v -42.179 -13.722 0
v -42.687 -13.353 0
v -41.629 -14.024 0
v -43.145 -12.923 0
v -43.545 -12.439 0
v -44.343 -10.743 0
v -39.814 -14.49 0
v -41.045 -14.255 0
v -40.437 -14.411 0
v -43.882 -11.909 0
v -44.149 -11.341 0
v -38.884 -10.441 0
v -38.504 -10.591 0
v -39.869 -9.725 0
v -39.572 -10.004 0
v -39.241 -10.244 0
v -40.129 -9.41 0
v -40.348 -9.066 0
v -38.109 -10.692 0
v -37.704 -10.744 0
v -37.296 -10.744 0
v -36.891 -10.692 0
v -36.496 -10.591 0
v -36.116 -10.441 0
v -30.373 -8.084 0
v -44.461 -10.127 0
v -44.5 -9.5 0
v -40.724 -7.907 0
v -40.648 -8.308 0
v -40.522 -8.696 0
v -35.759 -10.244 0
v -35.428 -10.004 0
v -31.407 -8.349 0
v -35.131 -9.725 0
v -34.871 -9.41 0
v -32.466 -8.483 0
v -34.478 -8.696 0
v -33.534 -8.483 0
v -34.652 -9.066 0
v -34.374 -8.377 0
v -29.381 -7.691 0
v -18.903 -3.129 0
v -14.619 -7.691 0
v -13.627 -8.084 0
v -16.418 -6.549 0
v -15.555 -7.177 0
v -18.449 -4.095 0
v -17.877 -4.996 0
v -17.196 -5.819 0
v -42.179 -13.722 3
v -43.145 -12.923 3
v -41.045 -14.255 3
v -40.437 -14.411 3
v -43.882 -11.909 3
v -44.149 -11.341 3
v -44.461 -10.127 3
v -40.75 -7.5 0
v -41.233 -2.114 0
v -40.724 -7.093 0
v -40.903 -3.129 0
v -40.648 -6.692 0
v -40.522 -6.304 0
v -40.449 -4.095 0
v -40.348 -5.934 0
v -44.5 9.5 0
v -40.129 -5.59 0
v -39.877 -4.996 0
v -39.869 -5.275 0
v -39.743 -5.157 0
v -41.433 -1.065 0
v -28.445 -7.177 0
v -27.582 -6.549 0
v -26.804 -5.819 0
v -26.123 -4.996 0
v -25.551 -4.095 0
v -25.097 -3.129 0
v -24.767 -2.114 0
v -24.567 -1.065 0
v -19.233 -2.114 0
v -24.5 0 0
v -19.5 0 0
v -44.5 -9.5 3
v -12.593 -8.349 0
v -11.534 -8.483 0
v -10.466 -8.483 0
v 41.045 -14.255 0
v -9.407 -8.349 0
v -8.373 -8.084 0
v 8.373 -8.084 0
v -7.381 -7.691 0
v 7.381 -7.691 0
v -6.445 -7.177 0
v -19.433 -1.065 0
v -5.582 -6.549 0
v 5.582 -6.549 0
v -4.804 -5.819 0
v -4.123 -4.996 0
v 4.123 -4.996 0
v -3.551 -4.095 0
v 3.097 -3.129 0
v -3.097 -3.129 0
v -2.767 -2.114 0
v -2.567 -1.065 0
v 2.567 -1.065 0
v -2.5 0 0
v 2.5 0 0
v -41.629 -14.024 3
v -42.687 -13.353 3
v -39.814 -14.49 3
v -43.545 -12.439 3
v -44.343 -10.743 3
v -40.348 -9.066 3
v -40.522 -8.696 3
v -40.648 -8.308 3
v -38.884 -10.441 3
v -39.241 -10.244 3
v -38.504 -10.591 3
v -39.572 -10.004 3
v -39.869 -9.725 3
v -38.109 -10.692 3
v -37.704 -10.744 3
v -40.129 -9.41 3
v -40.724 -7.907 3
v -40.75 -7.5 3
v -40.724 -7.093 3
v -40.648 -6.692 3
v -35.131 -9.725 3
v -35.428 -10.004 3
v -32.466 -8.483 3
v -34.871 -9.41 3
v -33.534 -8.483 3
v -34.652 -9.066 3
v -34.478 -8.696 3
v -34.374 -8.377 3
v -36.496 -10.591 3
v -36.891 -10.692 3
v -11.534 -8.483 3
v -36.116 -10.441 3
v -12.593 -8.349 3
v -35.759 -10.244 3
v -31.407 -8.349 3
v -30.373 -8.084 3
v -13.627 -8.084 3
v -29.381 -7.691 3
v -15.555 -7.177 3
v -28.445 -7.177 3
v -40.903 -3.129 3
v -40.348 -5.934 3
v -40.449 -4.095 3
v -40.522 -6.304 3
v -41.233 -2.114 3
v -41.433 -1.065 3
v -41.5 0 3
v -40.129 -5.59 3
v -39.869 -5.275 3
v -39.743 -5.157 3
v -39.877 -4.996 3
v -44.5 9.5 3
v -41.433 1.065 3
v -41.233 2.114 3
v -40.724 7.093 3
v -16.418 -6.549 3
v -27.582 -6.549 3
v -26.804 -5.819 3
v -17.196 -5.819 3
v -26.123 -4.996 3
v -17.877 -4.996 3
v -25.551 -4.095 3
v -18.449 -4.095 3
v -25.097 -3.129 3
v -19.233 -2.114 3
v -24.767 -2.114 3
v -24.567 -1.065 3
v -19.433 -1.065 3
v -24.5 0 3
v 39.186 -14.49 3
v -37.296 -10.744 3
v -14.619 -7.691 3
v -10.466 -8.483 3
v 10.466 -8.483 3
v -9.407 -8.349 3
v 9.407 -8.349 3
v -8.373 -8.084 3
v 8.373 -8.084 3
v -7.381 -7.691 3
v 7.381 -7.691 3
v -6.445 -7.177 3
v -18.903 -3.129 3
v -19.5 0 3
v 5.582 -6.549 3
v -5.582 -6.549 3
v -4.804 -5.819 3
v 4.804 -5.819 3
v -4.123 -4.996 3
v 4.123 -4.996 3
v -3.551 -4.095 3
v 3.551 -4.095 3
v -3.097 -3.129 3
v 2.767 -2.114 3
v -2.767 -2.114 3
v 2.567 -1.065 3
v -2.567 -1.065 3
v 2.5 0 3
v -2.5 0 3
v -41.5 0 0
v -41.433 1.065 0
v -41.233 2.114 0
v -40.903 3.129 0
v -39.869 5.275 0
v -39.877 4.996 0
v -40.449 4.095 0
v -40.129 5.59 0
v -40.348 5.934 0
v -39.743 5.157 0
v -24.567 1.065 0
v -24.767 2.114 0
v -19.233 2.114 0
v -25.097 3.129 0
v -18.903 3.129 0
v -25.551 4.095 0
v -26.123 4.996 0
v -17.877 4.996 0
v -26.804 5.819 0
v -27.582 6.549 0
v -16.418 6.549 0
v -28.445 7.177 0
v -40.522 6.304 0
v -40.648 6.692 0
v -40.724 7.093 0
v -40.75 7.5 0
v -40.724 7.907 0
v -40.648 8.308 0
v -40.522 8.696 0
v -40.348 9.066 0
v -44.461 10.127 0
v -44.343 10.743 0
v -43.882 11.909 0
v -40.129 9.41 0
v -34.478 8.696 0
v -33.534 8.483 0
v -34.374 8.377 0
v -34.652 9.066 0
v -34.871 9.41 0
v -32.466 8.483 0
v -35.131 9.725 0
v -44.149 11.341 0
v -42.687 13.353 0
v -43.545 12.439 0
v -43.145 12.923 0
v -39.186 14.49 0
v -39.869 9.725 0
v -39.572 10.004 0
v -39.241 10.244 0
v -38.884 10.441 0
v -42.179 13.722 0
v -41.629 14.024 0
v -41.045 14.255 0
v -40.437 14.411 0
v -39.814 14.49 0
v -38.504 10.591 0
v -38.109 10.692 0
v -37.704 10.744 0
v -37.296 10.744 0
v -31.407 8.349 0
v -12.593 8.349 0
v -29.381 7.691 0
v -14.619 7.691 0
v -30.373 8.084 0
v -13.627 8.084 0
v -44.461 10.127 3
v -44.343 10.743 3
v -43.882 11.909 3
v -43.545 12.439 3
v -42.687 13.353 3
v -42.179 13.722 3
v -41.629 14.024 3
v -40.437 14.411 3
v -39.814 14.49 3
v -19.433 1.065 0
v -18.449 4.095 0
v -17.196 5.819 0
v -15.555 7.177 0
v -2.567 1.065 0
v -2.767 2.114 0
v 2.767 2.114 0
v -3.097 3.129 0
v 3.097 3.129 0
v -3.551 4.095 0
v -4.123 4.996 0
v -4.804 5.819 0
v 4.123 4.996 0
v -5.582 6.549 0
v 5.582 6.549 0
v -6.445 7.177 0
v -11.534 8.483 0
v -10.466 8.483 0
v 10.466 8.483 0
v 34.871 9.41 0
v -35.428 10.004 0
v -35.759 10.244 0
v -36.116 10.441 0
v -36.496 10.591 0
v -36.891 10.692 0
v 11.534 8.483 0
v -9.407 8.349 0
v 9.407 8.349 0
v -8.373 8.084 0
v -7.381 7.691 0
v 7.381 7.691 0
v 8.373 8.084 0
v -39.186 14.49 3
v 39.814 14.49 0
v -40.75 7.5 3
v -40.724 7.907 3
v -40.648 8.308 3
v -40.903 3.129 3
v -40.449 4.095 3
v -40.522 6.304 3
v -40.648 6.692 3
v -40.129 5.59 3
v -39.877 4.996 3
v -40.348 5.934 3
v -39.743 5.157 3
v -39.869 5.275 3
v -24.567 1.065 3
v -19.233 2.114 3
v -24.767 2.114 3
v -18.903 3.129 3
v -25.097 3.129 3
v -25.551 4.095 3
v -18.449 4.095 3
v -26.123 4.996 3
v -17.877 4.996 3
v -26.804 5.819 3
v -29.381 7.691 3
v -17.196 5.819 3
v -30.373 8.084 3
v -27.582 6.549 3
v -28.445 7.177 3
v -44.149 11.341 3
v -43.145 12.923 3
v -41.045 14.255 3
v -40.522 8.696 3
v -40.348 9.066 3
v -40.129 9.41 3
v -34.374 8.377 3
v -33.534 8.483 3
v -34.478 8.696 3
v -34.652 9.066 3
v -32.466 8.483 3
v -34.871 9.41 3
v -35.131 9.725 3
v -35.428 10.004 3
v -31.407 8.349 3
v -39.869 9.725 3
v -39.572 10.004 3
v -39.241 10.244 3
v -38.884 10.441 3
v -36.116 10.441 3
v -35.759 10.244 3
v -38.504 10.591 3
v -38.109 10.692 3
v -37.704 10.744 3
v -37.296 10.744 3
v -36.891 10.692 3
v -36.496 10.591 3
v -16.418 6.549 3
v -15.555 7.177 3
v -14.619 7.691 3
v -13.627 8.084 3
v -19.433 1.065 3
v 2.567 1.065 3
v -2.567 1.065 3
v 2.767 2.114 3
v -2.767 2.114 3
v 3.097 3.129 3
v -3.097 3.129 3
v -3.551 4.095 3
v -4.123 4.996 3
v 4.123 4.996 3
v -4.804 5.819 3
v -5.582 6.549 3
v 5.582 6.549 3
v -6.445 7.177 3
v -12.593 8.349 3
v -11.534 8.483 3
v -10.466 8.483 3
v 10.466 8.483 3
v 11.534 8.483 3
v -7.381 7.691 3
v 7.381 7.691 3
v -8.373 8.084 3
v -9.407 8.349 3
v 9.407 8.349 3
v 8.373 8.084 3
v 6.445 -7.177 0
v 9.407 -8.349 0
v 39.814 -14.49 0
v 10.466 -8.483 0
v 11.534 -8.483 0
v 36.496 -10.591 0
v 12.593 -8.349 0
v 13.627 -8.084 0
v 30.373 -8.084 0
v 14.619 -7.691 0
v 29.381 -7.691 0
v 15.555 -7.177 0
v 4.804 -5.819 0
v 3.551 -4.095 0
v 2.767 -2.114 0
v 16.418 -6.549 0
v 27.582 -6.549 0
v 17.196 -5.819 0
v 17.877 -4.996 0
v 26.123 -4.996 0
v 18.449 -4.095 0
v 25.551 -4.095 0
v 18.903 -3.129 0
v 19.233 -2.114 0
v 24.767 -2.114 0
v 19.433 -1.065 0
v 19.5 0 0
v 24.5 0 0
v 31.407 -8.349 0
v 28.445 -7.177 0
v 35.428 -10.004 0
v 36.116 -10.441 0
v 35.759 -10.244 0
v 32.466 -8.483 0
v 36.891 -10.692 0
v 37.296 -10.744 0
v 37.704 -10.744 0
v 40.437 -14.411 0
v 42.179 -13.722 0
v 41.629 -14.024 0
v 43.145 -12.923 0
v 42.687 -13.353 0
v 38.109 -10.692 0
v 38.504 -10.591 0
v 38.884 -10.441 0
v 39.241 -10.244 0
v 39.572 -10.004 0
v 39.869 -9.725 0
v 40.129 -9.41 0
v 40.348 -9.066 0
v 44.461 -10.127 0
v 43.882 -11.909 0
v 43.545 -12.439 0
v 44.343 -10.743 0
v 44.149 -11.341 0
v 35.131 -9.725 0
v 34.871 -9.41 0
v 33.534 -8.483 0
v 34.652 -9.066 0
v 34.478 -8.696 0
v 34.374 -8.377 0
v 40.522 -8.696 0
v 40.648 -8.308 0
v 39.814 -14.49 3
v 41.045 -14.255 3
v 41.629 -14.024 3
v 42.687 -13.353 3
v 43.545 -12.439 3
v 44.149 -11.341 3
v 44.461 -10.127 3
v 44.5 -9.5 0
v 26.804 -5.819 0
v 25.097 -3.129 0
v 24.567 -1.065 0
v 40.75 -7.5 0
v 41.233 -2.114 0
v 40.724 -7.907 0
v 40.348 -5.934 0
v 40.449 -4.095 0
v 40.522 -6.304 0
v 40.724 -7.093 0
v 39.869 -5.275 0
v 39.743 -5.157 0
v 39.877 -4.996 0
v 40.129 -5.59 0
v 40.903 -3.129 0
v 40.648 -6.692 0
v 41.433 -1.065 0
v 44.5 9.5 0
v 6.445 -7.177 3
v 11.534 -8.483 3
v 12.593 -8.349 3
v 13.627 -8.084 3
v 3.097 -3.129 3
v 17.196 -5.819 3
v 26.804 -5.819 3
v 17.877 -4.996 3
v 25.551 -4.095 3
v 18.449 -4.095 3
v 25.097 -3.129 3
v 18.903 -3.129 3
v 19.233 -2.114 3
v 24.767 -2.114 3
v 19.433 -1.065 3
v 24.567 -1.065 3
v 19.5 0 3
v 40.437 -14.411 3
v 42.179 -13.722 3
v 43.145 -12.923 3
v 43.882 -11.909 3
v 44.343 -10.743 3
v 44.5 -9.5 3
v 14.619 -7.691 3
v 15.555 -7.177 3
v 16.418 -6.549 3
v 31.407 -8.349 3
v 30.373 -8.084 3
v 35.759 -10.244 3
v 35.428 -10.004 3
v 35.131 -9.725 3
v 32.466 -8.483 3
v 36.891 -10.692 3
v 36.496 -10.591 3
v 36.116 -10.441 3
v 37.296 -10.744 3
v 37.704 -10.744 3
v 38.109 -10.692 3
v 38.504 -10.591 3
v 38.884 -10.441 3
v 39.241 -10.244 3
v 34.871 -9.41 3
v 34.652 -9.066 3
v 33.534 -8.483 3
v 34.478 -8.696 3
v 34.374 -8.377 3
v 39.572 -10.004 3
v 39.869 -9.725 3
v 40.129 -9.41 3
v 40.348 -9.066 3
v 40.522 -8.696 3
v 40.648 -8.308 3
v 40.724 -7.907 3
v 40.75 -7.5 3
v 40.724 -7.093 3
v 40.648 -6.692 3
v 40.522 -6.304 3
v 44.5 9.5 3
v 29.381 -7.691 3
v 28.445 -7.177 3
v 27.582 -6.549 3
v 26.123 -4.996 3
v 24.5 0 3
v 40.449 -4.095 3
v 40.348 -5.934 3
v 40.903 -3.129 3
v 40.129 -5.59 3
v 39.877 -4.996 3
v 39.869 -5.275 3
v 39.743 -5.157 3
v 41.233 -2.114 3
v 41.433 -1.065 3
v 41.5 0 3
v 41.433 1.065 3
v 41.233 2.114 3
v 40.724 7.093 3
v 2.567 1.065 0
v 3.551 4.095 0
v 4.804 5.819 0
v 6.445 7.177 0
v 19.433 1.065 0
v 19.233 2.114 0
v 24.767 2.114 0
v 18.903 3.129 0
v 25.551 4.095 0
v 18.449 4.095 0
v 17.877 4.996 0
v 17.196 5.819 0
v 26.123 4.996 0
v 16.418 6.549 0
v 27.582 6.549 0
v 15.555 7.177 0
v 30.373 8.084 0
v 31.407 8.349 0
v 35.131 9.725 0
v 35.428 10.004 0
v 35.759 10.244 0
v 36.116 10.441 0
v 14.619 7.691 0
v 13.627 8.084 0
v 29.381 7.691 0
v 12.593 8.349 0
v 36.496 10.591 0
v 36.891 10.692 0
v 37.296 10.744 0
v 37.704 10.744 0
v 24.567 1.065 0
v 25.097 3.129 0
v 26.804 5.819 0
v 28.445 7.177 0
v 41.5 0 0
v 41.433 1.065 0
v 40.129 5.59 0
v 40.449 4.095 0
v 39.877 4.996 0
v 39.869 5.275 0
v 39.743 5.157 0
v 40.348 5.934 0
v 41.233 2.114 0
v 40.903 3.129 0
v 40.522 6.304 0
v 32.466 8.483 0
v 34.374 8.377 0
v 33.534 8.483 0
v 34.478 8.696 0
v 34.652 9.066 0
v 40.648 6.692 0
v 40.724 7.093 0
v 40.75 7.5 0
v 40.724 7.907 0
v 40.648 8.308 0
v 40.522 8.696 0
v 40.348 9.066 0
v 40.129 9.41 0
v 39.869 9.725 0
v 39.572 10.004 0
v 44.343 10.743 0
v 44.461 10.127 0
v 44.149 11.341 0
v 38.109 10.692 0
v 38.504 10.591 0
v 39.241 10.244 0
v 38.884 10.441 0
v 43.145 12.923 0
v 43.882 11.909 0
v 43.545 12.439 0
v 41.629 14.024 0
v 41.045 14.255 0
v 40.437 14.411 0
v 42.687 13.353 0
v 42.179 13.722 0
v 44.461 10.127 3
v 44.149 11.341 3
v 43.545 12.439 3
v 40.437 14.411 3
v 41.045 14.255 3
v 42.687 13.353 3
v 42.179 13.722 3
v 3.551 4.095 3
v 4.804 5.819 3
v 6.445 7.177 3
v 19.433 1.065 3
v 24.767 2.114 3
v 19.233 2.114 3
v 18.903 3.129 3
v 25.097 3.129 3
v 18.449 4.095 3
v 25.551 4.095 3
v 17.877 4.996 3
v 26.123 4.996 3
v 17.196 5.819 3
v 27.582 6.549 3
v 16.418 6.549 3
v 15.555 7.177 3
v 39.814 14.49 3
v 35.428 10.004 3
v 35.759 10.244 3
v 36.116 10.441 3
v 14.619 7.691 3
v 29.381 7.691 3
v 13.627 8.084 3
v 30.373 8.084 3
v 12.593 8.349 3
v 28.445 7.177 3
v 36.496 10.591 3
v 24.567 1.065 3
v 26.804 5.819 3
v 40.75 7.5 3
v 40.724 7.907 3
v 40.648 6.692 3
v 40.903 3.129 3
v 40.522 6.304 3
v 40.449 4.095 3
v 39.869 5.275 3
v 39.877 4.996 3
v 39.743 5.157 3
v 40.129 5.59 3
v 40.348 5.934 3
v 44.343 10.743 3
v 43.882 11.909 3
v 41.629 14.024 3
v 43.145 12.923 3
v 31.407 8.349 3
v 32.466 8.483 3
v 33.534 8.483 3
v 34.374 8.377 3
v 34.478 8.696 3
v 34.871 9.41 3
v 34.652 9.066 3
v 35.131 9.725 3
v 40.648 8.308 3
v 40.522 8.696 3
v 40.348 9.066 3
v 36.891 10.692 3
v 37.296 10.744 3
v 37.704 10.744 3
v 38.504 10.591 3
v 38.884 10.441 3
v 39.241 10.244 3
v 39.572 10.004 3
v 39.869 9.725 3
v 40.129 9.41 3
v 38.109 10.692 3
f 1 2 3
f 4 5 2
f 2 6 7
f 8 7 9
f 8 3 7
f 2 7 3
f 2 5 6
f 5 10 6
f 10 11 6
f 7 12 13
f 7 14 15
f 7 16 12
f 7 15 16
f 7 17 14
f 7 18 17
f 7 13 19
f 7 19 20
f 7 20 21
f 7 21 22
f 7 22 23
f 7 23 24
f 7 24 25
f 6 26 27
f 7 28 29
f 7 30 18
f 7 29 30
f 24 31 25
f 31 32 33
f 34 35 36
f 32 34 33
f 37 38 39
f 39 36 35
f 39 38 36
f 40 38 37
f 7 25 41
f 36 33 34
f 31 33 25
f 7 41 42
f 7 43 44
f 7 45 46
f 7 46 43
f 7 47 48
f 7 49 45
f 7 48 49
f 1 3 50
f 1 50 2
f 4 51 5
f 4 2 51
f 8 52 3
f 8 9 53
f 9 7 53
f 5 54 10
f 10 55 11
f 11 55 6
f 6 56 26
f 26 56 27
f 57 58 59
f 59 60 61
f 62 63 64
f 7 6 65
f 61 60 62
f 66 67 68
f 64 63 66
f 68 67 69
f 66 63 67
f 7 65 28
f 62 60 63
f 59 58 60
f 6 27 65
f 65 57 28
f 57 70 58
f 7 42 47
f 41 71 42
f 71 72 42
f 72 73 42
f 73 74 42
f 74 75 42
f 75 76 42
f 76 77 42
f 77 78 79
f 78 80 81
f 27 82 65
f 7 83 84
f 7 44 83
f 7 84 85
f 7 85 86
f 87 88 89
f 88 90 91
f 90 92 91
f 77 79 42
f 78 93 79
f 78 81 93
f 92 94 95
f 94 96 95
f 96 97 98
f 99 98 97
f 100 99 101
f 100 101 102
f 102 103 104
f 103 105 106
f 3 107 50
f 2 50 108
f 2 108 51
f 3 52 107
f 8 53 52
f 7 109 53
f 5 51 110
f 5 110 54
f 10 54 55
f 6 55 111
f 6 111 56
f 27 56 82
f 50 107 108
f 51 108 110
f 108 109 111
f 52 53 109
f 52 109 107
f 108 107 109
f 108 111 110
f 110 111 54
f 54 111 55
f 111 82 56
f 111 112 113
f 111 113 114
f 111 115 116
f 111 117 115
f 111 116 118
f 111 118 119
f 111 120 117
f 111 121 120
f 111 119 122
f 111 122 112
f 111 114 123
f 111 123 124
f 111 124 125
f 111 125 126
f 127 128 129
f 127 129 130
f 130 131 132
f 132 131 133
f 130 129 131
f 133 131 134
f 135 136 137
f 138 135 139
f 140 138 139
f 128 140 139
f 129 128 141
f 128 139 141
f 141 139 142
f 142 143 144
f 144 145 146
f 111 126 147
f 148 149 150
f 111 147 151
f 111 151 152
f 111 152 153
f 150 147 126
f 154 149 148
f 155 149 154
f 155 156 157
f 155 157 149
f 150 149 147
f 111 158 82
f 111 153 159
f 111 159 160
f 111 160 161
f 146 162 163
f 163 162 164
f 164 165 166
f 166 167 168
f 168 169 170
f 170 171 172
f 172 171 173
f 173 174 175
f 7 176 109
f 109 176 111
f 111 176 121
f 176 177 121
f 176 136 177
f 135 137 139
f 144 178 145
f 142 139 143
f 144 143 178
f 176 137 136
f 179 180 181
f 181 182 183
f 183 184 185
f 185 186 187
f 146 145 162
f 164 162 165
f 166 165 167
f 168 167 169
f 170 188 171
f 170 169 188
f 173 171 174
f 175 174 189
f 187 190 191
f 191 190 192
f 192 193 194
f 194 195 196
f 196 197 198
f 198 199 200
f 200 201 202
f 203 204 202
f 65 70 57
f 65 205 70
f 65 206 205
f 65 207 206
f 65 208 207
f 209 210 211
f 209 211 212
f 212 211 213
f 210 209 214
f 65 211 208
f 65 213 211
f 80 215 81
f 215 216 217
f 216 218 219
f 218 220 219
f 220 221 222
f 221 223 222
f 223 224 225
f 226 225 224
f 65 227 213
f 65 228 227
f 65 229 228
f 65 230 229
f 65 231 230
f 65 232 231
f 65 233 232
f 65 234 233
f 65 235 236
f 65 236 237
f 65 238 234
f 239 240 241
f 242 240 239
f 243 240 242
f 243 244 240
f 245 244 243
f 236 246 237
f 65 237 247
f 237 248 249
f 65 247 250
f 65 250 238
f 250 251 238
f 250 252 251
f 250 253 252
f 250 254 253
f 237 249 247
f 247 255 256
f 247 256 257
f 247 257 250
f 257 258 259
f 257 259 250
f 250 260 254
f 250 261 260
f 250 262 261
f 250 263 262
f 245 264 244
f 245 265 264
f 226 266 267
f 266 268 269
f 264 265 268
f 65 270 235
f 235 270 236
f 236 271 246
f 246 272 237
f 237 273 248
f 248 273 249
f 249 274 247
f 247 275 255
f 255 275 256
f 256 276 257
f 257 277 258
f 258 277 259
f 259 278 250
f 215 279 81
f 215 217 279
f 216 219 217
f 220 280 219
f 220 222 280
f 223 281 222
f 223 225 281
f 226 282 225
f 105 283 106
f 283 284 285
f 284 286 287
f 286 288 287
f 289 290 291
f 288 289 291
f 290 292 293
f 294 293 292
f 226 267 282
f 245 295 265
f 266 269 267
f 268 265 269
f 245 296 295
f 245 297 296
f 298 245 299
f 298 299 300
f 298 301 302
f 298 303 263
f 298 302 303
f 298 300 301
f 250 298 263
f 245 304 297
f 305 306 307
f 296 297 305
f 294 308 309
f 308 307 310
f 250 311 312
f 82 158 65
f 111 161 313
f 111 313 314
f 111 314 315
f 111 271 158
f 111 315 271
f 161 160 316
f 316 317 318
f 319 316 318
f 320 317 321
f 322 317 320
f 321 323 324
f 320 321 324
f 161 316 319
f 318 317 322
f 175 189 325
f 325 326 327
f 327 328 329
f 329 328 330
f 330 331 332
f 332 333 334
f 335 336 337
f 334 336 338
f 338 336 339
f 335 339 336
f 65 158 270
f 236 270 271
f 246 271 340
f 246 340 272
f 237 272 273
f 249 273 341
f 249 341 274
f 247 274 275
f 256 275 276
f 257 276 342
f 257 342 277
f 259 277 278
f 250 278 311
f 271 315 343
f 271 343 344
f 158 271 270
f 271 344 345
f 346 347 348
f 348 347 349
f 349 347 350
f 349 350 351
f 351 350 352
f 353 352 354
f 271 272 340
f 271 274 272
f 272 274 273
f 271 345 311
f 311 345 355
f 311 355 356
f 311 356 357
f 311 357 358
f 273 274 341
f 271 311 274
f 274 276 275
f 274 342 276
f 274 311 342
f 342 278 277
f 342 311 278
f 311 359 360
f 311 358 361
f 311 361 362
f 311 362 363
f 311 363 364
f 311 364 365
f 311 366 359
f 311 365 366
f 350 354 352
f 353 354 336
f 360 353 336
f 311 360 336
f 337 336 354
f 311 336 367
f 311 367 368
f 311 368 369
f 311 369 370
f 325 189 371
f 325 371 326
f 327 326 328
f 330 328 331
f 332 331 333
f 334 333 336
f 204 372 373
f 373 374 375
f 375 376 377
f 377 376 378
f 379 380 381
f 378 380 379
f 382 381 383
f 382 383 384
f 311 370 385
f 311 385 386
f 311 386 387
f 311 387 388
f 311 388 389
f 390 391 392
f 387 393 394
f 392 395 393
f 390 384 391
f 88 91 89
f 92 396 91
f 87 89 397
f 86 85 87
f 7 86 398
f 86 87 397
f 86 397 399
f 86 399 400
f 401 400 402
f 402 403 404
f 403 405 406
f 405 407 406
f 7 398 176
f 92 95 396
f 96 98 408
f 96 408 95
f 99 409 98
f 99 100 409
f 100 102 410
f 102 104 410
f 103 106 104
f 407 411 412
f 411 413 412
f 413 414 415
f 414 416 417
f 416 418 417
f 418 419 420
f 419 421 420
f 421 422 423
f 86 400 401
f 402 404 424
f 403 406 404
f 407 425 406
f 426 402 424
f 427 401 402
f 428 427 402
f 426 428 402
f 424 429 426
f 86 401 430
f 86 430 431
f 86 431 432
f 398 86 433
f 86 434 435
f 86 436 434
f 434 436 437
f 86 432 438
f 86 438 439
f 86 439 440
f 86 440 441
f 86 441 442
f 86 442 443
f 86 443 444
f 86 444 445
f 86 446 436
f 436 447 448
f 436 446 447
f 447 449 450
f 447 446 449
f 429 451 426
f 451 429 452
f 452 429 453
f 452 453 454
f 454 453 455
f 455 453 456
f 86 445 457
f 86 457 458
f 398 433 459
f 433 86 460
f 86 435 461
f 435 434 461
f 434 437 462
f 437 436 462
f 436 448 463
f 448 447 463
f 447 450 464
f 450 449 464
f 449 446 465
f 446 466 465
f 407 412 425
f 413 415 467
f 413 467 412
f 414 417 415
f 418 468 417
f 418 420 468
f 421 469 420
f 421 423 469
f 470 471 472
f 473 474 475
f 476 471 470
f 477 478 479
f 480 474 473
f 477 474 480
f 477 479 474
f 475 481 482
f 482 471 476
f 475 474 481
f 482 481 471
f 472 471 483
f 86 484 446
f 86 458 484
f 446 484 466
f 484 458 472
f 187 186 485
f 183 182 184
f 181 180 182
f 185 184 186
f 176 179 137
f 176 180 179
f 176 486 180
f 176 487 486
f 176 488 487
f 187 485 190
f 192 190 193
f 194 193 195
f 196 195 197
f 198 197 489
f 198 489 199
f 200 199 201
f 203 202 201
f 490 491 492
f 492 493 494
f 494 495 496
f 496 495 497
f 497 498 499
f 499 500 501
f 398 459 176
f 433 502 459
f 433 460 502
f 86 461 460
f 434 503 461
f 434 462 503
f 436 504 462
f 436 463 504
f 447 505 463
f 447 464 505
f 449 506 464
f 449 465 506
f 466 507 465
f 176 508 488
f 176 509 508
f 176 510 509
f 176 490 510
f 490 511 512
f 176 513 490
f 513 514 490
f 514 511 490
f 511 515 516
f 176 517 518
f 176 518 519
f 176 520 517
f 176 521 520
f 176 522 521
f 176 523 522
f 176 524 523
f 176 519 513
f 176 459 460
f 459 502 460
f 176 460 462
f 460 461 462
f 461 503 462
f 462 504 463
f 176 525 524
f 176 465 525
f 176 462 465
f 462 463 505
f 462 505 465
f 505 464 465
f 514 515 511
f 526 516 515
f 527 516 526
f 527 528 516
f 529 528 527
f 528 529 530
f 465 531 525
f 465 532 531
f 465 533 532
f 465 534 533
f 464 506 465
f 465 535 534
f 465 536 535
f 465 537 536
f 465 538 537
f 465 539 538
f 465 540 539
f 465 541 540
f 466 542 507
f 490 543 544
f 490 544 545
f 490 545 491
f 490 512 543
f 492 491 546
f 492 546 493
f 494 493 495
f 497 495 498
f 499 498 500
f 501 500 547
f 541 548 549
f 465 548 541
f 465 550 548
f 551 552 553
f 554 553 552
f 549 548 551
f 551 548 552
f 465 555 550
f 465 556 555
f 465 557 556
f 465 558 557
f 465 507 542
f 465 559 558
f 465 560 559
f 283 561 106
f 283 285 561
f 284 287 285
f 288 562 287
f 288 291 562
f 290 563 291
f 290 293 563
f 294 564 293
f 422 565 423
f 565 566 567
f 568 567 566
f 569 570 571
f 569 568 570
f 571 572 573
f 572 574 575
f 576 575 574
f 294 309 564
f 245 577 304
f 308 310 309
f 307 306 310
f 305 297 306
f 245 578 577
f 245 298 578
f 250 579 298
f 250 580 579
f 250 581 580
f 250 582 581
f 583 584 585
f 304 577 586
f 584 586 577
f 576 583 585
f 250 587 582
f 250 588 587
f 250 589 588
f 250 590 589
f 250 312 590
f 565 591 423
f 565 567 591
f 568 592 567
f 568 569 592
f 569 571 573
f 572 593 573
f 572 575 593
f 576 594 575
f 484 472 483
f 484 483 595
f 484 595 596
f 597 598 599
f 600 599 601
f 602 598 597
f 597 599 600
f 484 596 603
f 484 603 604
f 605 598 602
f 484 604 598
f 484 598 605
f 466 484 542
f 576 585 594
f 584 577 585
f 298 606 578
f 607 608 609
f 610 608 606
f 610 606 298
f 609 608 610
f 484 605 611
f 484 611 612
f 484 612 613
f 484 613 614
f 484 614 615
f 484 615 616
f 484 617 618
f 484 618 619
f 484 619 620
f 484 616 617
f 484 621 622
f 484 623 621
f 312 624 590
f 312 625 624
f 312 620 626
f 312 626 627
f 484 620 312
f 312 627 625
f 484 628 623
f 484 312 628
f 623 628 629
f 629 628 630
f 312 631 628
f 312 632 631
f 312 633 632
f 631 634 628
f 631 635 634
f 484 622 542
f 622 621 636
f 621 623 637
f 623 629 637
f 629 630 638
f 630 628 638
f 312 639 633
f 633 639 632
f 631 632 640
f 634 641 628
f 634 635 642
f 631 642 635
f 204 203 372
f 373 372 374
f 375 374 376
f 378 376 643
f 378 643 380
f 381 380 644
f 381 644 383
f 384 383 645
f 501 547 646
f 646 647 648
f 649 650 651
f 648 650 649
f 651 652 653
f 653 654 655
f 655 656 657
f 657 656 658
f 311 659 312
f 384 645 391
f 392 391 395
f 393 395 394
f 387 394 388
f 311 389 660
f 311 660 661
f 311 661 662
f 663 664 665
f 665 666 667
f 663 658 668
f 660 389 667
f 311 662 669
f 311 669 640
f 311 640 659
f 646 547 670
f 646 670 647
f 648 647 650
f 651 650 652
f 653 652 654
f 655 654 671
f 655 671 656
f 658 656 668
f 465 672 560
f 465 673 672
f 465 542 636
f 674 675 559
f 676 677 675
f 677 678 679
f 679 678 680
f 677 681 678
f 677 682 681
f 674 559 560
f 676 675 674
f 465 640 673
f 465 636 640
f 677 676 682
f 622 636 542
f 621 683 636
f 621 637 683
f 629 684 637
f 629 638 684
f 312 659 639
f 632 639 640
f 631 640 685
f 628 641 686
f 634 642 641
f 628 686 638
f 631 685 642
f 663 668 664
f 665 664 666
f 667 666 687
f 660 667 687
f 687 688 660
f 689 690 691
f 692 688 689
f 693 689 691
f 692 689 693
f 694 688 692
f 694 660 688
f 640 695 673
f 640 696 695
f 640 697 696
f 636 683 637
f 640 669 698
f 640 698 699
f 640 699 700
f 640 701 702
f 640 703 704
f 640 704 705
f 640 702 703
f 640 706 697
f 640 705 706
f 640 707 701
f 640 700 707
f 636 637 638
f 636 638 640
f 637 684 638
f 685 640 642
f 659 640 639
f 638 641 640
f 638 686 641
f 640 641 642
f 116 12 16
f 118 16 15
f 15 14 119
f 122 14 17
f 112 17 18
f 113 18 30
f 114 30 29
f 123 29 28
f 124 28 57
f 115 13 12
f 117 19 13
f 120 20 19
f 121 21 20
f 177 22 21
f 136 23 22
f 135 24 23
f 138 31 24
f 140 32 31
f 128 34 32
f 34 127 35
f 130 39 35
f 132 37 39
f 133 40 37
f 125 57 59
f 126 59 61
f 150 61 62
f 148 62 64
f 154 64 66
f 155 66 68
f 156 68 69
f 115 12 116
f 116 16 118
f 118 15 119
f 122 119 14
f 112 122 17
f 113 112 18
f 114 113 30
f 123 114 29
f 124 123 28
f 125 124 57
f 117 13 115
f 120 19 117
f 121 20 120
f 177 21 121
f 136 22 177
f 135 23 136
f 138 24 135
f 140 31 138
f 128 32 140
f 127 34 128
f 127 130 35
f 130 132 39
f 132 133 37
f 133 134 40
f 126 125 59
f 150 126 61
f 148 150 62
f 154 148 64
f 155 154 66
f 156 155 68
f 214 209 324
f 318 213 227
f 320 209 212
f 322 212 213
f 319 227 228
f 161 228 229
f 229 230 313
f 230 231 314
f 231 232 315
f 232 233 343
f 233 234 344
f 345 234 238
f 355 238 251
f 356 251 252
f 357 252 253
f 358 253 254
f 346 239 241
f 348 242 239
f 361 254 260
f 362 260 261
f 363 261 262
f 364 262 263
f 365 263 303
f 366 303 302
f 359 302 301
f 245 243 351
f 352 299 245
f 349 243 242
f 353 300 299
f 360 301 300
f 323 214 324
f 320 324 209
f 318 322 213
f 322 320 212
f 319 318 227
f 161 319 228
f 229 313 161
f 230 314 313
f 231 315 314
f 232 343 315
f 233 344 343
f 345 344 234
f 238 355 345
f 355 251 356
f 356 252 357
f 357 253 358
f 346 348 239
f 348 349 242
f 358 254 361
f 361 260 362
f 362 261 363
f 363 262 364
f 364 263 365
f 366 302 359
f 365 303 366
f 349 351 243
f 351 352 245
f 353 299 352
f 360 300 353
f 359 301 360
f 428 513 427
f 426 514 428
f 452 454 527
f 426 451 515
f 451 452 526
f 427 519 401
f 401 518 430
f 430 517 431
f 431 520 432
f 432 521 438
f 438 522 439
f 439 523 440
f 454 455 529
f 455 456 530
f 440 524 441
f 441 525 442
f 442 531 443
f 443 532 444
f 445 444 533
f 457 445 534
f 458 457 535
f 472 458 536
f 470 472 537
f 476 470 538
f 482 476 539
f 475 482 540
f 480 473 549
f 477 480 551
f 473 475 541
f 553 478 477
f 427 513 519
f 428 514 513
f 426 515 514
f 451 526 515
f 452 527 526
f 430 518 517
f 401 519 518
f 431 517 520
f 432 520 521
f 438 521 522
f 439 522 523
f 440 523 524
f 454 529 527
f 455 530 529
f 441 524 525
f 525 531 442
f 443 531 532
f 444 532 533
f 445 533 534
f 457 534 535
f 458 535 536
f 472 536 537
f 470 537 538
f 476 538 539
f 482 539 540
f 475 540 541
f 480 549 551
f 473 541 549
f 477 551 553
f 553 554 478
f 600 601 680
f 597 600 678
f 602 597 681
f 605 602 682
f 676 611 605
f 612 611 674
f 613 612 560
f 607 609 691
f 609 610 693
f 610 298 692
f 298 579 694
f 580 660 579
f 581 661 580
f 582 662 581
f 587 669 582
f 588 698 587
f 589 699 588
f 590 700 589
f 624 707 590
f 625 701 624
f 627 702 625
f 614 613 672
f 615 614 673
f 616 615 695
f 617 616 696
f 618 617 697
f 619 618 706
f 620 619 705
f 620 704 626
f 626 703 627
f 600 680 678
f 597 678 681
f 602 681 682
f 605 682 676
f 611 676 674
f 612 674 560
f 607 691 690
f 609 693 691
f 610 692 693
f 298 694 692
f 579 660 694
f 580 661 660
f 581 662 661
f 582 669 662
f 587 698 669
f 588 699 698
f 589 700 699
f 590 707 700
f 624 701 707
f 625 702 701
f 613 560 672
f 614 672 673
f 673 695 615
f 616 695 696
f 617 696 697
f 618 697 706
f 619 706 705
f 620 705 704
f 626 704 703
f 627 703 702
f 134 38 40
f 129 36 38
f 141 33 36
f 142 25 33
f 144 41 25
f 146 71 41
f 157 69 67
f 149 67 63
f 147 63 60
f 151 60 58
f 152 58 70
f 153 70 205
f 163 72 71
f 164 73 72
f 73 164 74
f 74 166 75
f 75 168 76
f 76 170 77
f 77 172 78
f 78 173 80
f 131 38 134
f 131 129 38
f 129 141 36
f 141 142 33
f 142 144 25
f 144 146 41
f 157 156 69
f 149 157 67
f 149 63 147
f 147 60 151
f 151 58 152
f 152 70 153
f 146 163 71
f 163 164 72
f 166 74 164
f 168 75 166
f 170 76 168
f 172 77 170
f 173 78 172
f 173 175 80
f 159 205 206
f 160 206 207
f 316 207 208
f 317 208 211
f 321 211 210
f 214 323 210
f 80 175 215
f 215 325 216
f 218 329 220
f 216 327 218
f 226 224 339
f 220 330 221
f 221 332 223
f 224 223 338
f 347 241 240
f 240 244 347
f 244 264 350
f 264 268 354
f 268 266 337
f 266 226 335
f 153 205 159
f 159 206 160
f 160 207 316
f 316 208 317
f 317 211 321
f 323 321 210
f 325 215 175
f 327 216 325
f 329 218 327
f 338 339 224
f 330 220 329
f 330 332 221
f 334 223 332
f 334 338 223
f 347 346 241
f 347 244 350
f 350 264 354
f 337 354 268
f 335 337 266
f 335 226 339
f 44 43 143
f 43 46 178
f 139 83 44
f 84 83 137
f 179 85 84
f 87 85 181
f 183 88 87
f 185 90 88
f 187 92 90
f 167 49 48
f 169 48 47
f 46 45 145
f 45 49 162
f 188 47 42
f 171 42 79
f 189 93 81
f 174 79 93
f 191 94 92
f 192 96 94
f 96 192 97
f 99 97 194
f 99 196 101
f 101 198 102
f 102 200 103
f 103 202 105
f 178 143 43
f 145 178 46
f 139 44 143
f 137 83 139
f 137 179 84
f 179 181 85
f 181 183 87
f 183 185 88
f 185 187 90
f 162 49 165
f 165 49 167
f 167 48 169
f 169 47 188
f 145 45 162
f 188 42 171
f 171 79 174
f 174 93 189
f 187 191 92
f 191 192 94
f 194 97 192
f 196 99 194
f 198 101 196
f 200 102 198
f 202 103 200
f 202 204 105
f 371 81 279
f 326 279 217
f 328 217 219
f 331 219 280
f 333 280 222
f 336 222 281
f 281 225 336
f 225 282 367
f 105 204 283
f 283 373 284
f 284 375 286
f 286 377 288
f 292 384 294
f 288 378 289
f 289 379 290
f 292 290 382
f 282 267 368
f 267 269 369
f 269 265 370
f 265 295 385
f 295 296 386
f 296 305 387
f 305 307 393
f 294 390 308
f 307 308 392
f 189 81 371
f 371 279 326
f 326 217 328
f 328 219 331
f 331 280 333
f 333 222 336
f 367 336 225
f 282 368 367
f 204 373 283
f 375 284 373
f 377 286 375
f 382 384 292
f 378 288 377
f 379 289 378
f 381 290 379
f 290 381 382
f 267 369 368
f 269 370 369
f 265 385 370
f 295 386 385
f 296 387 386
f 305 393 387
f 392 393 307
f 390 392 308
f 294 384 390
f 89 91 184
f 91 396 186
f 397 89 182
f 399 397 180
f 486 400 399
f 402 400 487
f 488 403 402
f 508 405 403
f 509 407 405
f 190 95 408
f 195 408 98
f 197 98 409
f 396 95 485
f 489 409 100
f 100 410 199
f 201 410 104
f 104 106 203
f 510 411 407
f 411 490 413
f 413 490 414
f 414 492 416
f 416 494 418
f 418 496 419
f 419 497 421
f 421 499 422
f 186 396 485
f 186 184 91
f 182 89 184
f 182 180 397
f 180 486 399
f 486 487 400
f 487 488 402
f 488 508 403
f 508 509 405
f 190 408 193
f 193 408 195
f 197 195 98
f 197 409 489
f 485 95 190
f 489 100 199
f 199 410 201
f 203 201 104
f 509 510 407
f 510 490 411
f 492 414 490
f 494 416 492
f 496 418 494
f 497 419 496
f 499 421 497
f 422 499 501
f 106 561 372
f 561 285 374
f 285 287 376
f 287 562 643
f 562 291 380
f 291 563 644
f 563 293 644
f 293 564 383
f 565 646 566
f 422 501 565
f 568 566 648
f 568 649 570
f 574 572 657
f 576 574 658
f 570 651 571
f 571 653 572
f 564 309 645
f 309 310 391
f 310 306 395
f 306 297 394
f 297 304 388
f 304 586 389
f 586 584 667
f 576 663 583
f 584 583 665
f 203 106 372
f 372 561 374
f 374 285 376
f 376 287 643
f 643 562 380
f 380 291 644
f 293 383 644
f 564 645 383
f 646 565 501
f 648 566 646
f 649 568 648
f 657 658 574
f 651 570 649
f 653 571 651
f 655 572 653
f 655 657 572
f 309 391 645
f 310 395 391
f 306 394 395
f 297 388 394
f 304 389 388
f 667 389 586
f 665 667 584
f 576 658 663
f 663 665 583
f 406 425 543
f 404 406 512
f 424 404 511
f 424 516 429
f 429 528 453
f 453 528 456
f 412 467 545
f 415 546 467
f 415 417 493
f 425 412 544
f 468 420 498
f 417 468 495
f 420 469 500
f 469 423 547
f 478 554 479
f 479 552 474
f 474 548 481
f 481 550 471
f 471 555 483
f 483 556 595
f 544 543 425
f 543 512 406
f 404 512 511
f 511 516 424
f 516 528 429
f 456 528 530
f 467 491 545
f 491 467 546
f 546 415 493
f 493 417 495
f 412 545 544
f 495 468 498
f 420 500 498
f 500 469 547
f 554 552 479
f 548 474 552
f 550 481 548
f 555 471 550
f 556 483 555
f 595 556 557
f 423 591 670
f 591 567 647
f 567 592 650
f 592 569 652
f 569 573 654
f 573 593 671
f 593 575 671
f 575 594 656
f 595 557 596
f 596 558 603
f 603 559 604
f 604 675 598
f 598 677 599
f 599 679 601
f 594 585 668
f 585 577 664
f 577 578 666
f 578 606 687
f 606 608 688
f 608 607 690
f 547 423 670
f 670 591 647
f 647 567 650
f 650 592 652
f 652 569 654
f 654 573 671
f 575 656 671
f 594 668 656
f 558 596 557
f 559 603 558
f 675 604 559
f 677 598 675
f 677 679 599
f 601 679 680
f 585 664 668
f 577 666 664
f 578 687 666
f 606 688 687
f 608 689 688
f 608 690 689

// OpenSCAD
$fn = 50;

difference() {
	union() {
		hull() {
			translate(v = [-39.5, 9.5, 0]) {
				cylinder(h = 3, r = 5);
			}
			translate(v = [39.5, 9.5, 0]) {
				cylinder(h = 3, r = 5);
			}
			translate(v = [-39.5, -9.5, 0]) {
				cylinder(h = 3, r = 5);
			}
			translate(v = [39.5, -9.5, 0]) {
				cylinder(h = 3, r = 5);
			}
		}
	}
	union() {
		translate(v = [-37.5, -7.5, -100.0]) {
			cylinder(h = 200, r = 3.25);
		}
		translate(v = [-37.5, 7.5, -100.0]) {
			cylinder(h = 200, r = 3.25);
		}
		translate(v = [37.5, -7.5, -100.0]) {
			cylinder(h = 200, r = 3.25);
		}
		translate(v = [37.5, 7.5, -100.0]) {
			cylinder(h = 200, r = 3.25);
		}
		translate(v = [-37.5, -7.5, -100.0]) {
			cylinder(h = 200, r = 1.8);
		}
		translate(v = [-37.5, 7.5, -100.0]) {
			cylinder(h = 200, r = 1.8);
		}
		translate(v = [37.5, -7.5, -100.0]) {
			cylinder(h = 200, r = 1.8);
		}
		translate(v = [37.5, 7.5, -100.0]) {
			cylinder(h = 200, r = 1.8);
		}
		translate(v = [-33.0, 0, 0.0]) {
			cylinder(h = 3, r = 8.5);
		}
		translate(v = [-11.0, 0, 0.0]) {
			cylinder(h = 3, r = 8.5);
		}
		translate(v = [11.0, 0, 0.0]) {
			cylinder(h = 3, r = 8.5);
		}
		translate(v = [33.0, 0, 0.0]) {
			cylinder(h = 3, r = 8.5);
		}
	}
}
